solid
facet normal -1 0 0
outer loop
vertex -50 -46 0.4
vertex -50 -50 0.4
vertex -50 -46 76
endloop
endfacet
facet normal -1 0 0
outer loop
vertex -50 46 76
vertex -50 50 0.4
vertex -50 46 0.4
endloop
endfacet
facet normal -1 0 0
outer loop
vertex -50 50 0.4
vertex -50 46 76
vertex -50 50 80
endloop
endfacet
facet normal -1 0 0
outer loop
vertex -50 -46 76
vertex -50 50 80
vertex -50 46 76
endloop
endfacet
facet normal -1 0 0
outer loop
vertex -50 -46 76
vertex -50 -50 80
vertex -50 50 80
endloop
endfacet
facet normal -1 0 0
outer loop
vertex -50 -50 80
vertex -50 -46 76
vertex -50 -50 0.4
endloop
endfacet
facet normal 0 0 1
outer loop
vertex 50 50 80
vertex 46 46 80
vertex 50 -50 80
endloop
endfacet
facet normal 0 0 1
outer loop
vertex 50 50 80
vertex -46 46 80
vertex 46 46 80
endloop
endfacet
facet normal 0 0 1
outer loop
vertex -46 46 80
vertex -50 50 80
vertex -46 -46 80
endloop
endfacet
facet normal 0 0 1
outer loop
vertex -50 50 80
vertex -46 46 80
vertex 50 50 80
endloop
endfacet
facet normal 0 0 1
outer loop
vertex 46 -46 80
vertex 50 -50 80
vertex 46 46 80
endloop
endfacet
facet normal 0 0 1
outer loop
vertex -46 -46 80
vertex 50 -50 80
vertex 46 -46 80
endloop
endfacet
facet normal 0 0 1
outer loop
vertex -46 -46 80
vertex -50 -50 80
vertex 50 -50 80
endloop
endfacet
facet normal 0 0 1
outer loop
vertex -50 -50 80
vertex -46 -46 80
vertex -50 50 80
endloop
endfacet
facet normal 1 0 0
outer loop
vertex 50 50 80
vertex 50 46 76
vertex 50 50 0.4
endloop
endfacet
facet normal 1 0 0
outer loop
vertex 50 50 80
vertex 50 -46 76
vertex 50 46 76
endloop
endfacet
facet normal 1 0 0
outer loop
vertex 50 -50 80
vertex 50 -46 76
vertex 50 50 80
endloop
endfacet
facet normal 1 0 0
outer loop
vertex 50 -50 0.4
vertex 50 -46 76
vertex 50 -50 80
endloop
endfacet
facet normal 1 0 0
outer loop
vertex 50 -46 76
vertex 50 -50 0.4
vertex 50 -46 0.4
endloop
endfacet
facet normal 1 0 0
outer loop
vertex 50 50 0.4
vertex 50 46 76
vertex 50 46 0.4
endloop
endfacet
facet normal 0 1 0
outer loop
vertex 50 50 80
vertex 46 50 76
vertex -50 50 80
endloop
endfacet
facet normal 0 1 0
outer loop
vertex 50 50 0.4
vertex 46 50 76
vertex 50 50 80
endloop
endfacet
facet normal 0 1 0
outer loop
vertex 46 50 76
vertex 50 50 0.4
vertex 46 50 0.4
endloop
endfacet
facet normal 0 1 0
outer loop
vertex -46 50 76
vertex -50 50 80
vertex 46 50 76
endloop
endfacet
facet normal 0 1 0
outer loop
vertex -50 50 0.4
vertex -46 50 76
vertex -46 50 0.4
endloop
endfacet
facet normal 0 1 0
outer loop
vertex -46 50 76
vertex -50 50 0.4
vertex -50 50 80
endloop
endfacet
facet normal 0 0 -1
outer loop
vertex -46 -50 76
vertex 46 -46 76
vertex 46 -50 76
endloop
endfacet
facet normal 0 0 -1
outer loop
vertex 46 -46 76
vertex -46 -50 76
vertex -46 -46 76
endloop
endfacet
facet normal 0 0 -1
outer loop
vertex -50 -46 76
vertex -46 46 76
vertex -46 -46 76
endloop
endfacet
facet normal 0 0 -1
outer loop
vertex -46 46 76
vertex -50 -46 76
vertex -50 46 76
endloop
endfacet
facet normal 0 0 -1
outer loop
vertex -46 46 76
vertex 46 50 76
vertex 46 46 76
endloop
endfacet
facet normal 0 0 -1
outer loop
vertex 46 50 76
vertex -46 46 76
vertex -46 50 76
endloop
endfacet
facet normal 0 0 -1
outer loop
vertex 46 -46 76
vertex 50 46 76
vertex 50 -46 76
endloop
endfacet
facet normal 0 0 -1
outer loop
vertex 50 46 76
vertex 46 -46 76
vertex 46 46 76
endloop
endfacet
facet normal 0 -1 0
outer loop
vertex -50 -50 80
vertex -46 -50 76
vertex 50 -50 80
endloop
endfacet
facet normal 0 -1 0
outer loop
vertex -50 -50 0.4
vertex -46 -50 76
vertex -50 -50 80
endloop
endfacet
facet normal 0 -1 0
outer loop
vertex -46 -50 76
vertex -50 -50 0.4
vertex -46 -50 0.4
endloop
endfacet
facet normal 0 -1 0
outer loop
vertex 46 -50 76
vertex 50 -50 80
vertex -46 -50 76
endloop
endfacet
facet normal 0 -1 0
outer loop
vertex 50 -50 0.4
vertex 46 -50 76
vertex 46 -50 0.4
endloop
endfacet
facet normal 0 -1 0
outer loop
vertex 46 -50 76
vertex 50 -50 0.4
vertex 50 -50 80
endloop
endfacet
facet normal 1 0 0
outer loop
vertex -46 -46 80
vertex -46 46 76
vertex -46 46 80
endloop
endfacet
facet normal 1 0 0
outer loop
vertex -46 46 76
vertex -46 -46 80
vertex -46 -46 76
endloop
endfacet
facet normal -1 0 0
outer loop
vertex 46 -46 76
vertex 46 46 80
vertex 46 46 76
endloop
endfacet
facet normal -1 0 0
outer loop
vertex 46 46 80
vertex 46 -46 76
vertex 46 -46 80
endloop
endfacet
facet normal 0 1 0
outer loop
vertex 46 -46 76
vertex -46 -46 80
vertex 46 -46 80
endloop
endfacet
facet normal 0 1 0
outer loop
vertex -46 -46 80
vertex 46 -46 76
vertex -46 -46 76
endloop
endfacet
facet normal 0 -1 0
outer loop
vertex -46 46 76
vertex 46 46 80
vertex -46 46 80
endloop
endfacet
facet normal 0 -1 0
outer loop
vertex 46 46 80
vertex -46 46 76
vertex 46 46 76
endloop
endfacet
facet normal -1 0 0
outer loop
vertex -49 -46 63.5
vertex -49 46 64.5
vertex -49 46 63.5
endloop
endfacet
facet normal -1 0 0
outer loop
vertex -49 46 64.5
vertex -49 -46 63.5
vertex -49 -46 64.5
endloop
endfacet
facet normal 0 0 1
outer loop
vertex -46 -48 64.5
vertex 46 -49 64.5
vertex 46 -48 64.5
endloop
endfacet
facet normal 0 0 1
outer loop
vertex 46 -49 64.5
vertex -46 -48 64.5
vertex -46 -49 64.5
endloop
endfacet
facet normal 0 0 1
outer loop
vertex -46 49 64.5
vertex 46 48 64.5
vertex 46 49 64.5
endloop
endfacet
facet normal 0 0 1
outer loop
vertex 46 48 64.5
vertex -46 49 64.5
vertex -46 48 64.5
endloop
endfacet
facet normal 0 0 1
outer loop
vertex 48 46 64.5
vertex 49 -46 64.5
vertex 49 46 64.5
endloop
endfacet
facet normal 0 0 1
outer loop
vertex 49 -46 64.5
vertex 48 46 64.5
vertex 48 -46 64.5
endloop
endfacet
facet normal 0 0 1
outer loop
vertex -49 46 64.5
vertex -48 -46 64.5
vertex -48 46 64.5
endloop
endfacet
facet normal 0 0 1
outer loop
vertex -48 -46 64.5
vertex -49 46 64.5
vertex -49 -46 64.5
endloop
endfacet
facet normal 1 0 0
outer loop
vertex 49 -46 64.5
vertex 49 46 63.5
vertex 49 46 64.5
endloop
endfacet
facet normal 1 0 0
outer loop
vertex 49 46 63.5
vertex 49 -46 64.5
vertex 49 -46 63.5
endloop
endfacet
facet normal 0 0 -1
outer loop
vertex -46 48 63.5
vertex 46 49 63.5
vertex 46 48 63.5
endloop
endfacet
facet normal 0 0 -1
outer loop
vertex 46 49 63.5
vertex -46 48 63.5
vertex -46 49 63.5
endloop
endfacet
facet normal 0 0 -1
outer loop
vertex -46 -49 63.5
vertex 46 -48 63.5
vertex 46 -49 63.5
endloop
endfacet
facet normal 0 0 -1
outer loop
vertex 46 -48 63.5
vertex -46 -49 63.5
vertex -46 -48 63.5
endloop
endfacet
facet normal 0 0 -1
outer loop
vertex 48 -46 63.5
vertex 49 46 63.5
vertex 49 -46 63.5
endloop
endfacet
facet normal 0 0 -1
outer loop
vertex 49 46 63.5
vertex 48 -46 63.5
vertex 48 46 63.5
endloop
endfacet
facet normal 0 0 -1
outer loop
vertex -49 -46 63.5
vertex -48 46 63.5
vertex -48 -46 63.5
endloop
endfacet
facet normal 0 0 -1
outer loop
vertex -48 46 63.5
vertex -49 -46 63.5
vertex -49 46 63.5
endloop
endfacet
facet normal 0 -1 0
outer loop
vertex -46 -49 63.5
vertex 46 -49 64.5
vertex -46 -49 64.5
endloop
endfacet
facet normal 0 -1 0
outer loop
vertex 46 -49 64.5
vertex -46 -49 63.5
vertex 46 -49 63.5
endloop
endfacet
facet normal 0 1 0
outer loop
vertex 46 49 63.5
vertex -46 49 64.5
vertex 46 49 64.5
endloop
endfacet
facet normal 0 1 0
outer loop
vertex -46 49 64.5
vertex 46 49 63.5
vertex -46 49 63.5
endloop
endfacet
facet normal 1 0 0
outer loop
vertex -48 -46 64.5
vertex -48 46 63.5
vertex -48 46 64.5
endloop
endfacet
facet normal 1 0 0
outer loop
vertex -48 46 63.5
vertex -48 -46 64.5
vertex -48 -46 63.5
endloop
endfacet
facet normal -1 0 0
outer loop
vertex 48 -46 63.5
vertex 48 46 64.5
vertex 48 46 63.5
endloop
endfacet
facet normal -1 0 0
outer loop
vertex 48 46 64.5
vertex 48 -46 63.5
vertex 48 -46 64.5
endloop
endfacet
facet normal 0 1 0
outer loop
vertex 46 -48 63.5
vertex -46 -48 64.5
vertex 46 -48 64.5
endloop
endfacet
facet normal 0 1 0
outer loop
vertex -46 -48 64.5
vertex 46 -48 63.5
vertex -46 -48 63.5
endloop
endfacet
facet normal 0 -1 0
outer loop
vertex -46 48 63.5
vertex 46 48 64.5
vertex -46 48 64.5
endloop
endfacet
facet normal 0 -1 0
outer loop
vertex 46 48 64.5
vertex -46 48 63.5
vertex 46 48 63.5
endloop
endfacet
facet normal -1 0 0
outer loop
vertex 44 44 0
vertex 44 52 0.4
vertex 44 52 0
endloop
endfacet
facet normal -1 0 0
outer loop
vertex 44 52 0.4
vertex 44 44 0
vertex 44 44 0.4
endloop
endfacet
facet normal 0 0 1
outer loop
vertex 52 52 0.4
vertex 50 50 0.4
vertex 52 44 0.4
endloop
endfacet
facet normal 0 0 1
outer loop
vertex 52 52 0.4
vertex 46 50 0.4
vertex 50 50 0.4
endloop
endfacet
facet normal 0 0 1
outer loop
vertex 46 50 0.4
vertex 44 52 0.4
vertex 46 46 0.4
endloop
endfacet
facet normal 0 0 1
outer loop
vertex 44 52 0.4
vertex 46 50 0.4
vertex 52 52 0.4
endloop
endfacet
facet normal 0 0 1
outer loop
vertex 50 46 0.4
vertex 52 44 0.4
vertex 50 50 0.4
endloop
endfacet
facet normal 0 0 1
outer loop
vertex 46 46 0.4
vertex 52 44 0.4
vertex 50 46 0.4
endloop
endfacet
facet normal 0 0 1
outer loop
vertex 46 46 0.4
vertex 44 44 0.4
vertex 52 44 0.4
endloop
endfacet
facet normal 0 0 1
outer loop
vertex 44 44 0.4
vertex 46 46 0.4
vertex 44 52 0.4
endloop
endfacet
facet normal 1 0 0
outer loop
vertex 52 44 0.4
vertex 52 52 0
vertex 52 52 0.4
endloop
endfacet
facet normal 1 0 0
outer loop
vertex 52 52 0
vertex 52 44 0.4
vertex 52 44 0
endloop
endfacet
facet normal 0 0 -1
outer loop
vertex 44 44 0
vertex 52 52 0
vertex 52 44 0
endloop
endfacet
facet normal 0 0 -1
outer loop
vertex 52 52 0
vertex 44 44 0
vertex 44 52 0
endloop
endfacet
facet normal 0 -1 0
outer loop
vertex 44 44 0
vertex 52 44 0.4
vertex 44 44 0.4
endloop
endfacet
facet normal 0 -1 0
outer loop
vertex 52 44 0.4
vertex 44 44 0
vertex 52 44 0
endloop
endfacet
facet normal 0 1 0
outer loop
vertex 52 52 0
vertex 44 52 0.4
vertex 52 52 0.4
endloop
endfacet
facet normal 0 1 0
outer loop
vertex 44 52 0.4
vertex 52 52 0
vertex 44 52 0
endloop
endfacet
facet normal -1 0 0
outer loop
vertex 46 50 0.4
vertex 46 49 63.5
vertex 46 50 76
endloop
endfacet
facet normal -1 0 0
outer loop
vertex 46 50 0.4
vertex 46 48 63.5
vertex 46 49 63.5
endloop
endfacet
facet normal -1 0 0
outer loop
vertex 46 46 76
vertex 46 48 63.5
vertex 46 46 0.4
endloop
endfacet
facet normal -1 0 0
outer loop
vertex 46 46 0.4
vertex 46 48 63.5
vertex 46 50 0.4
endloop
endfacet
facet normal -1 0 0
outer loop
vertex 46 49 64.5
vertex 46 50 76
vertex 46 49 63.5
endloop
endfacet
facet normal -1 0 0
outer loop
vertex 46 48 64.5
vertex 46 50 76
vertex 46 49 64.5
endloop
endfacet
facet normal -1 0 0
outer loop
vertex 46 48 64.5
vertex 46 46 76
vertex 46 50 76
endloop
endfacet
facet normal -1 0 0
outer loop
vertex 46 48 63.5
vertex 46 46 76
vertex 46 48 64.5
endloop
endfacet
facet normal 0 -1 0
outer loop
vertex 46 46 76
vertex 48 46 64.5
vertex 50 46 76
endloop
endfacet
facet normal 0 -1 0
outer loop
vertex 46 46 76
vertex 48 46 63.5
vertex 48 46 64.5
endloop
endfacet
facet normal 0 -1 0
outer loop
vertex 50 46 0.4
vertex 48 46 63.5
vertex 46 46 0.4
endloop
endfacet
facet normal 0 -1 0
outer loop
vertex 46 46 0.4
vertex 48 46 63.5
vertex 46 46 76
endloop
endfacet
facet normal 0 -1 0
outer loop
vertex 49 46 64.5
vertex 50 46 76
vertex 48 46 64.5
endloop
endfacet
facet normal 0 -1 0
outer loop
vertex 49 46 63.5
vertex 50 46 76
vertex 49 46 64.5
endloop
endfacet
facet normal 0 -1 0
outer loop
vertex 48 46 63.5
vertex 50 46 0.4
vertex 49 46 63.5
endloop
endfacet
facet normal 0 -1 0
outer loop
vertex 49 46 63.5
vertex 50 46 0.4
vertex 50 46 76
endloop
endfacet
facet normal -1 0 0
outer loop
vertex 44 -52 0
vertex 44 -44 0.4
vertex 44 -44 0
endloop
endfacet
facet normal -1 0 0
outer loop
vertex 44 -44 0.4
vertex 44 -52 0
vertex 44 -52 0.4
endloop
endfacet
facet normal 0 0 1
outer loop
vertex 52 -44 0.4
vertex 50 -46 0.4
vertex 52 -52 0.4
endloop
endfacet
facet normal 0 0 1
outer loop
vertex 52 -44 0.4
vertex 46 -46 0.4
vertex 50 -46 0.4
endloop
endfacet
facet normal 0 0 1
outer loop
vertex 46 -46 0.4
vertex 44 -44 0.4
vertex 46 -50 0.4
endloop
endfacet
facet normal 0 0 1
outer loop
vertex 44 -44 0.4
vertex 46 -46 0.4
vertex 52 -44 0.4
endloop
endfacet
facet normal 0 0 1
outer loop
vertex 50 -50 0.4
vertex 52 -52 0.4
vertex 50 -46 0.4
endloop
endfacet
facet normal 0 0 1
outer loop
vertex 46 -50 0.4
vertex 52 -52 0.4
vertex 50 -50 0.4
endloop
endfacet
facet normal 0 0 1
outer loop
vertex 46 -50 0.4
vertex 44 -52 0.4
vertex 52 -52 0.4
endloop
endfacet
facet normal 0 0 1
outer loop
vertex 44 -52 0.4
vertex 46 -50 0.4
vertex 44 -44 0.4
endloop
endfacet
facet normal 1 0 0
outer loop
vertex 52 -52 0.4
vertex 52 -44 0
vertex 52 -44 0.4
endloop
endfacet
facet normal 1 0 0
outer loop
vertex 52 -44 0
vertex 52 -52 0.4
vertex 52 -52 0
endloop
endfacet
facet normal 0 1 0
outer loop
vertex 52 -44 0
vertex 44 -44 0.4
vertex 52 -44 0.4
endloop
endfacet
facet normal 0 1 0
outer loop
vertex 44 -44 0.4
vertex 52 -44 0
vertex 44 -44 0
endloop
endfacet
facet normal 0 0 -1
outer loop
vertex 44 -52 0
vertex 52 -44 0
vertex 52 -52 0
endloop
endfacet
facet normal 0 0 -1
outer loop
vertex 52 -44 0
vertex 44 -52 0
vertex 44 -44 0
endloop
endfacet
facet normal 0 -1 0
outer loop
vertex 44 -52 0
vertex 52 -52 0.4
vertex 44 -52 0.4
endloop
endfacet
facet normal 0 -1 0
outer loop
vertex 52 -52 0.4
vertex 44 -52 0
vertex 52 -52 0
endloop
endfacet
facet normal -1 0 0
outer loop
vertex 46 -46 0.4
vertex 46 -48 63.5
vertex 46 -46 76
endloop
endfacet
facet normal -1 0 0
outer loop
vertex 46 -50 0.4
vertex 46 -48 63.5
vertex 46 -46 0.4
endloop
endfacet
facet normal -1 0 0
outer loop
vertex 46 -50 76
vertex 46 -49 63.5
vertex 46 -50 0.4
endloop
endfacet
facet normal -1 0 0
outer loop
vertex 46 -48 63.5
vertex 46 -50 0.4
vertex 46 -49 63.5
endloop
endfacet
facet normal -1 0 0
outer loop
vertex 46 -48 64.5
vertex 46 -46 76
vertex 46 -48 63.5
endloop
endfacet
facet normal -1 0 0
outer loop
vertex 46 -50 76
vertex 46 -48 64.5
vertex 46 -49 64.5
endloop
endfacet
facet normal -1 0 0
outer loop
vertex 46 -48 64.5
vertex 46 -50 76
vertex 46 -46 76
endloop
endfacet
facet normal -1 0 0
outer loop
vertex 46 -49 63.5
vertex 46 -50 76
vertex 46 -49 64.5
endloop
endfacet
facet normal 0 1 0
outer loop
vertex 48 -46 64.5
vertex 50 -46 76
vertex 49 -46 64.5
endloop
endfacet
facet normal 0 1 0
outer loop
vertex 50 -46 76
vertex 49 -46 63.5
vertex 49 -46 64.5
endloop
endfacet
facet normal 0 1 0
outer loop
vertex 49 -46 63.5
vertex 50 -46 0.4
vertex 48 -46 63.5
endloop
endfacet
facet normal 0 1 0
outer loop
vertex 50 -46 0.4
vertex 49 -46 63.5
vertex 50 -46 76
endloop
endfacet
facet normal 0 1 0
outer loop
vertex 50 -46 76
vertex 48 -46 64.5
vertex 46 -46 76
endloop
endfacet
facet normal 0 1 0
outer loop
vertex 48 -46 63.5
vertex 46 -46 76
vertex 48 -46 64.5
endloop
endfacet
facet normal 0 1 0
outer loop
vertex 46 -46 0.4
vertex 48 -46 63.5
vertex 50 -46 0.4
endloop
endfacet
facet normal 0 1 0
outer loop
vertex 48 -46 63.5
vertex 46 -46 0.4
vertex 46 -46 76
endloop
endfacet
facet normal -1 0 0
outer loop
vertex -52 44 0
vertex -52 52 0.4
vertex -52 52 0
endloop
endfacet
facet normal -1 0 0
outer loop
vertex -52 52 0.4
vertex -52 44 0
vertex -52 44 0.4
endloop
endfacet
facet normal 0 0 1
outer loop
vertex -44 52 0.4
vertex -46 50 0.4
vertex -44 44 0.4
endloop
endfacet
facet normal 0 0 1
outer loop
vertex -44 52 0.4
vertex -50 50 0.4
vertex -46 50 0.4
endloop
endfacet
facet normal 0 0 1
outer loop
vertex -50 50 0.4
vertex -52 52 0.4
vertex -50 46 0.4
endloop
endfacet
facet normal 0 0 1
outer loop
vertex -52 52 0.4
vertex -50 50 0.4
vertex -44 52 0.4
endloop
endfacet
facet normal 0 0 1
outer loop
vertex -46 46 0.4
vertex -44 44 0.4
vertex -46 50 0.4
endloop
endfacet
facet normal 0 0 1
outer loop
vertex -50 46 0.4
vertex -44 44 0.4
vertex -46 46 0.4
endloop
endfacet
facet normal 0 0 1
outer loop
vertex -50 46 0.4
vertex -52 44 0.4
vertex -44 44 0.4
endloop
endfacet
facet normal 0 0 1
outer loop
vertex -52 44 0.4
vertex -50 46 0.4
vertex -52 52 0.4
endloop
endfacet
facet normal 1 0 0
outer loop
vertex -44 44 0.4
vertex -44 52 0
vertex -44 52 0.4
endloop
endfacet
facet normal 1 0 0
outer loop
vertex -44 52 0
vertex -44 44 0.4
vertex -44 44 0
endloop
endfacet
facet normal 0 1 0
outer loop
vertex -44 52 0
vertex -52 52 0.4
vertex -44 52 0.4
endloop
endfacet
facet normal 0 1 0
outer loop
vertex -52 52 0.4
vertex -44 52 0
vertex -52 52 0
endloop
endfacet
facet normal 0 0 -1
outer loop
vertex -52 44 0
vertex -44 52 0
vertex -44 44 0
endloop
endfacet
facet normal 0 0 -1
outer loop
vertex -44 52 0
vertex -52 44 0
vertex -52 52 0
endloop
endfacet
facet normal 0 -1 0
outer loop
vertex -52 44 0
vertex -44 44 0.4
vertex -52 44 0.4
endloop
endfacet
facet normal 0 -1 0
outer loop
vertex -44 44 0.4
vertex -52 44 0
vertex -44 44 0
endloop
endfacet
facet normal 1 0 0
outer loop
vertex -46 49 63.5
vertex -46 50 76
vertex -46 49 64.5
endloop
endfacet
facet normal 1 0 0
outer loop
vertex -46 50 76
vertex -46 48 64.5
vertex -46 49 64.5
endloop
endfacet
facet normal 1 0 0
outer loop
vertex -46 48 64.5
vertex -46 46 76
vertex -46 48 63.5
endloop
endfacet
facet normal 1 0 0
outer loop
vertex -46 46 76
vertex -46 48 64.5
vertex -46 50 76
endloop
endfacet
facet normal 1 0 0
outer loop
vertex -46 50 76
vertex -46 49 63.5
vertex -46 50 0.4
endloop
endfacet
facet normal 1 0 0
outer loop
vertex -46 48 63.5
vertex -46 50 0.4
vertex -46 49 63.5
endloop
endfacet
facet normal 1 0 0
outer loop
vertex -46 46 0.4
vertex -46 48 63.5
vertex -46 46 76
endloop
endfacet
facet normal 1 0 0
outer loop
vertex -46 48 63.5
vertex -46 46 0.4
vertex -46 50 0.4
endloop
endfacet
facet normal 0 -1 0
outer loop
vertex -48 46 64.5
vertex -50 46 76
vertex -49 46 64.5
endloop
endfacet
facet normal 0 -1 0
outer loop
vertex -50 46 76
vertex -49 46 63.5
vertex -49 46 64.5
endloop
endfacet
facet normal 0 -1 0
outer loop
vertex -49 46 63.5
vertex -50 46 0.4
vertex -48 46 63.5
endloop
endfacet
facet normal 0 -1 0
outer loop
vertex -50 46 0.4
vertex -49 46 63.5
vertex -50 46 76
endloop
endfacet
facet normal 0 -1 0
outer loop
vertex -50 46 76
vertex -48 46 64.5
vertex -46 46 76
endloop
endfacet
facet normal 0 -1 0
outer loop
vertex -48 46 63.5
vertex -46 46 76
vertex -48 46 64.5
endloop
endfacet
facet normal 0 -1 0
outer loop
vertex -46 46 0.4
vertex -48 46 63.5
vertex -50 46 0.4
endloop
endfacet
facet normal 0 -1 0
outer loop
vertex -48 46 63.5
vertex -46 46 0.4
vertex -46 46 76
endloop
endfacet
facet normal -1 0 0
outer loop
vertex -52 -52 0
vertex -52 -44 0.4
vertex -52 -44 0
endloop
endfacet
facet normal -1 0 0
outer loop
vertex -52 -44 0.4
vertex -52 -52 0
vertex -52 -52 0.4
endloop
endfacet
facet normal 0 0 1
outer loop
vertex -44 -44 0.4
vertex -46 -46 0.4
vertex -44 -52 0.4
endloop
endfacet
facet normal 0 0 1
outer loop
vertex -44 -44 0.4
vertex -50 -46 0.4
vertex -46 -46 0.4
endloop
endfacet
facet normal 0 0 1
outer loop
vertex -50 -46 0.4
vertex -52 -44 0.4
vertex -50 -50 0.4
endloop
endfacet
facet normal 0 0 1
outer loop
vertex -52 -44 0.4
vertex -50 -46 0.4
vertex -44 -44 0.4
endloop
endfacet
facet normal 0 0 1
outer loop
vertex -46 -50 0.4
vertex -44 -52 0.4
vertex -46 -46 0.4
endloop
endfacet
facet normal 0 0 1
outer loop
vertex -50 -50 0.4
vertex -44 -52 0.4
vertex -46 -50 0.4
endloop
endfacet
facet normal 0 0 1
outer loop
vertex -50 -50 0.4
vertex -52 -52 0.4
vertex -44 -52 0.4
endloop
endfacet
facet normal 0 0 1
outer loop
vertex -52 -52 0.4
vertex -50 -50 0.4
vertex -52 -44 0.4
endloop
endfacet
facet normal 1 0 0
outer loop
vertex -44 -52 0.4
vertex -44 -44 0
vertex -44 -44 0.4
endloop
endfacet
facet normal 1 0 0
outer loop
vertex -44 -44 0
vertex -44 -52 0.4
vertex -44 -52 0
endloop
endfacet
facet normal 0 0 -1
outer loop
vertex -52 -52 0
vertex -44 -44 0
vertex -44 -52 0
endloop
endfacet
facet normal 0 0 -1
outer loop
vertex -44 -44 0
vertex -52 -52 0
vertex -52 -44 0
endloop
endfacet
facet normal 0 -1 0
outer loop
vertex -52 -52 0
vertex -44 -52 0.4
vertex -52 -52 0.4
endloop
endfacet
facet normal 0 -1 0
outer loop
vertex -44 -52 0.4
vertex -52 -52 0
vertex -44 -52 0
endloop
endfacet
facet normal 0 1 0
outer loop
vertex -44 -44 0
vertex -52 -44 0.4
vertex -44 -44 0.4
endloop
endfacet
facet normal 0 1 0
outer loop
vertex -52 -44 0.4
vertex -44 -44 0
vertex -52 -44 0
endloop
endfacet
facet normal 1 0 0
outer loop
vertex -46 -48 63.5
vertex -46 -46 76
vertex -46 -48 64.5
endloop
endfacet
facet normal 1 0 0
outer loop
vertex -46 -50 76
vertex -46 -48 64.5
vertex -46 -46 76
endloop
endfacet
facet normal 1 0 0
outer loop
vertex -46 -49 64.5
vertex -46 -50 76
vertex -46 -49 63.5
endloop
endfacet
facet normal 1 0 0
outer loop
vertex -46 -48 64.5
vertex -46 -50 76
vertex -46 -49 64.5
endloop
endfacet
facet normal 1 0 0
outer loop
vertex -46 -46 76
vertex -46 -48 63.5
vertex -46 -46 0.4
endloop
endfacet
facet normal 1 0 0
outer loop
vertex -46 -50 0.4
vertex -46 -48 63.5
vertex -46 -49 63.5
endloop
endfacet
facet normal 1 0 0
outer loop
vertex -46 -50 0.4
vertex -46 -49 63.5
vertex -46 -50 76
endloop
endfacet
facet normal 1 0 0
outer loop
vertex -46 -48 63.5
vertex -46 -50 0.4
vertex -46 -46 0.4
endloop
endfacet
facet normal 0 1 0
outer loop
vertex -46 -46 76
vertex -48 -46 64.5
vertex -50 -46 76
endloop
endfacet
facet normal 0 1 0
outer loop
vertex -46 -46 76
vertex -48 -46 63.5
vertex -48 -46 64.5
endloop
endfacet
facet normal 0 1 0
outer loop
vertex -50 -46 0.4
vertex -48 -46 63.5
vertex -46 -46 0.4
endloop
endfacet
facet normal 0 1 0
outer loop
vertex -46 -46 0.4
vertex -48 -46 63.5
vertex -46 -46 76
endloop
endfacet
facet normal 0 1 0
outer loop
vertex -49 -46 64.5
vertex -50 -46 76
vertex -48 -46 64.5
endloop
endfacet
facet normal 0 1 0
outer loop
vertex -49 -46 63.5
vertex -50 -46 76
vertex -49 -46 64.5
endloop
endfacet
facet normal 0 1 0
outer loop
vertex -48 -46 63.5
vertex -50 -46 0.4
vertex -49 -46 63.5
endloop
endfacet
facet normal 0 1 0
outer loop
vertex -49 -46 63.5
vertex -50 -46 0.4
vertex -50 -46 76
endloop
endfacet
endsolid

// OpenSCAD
stand_width=100;
stand_height=80;
stand_leg_diameter=4;

module stand(
    sw=stand_width,
    sh=stand_height,
    sld=stand_leg_diameter
){
    module leg(x,y) {
        union() {
        translate([x,y,sld/20])
            cube([2*sld,2*sld,sld/10],true);
        translate([x,y,sh/2])
            cube([sld,sld,sh],true);
        }
    }
  
    module square(e,d,offset) {
            translate([0,0,e])
                difference() {
                    cube([sw-offset,sw-offset,d], true);
                    cube([sw-2*d-offset,sw-2*d-offset,2*d], true);
                }
    }
    union() {
        square(sh-sld/2,sld,0);
        square(0.8*sh,sld/4,sld/2);
        leg((sw-sld)/2,(sw-sld)/2);
        leg((sw-sld)/2,(sw-sld)/-2);
        leg((sw-sld)/-2,(sw-sld)/2);
        leg((sw-sld)/-2,(sw-sld)/-2);
    }
}

stand();
